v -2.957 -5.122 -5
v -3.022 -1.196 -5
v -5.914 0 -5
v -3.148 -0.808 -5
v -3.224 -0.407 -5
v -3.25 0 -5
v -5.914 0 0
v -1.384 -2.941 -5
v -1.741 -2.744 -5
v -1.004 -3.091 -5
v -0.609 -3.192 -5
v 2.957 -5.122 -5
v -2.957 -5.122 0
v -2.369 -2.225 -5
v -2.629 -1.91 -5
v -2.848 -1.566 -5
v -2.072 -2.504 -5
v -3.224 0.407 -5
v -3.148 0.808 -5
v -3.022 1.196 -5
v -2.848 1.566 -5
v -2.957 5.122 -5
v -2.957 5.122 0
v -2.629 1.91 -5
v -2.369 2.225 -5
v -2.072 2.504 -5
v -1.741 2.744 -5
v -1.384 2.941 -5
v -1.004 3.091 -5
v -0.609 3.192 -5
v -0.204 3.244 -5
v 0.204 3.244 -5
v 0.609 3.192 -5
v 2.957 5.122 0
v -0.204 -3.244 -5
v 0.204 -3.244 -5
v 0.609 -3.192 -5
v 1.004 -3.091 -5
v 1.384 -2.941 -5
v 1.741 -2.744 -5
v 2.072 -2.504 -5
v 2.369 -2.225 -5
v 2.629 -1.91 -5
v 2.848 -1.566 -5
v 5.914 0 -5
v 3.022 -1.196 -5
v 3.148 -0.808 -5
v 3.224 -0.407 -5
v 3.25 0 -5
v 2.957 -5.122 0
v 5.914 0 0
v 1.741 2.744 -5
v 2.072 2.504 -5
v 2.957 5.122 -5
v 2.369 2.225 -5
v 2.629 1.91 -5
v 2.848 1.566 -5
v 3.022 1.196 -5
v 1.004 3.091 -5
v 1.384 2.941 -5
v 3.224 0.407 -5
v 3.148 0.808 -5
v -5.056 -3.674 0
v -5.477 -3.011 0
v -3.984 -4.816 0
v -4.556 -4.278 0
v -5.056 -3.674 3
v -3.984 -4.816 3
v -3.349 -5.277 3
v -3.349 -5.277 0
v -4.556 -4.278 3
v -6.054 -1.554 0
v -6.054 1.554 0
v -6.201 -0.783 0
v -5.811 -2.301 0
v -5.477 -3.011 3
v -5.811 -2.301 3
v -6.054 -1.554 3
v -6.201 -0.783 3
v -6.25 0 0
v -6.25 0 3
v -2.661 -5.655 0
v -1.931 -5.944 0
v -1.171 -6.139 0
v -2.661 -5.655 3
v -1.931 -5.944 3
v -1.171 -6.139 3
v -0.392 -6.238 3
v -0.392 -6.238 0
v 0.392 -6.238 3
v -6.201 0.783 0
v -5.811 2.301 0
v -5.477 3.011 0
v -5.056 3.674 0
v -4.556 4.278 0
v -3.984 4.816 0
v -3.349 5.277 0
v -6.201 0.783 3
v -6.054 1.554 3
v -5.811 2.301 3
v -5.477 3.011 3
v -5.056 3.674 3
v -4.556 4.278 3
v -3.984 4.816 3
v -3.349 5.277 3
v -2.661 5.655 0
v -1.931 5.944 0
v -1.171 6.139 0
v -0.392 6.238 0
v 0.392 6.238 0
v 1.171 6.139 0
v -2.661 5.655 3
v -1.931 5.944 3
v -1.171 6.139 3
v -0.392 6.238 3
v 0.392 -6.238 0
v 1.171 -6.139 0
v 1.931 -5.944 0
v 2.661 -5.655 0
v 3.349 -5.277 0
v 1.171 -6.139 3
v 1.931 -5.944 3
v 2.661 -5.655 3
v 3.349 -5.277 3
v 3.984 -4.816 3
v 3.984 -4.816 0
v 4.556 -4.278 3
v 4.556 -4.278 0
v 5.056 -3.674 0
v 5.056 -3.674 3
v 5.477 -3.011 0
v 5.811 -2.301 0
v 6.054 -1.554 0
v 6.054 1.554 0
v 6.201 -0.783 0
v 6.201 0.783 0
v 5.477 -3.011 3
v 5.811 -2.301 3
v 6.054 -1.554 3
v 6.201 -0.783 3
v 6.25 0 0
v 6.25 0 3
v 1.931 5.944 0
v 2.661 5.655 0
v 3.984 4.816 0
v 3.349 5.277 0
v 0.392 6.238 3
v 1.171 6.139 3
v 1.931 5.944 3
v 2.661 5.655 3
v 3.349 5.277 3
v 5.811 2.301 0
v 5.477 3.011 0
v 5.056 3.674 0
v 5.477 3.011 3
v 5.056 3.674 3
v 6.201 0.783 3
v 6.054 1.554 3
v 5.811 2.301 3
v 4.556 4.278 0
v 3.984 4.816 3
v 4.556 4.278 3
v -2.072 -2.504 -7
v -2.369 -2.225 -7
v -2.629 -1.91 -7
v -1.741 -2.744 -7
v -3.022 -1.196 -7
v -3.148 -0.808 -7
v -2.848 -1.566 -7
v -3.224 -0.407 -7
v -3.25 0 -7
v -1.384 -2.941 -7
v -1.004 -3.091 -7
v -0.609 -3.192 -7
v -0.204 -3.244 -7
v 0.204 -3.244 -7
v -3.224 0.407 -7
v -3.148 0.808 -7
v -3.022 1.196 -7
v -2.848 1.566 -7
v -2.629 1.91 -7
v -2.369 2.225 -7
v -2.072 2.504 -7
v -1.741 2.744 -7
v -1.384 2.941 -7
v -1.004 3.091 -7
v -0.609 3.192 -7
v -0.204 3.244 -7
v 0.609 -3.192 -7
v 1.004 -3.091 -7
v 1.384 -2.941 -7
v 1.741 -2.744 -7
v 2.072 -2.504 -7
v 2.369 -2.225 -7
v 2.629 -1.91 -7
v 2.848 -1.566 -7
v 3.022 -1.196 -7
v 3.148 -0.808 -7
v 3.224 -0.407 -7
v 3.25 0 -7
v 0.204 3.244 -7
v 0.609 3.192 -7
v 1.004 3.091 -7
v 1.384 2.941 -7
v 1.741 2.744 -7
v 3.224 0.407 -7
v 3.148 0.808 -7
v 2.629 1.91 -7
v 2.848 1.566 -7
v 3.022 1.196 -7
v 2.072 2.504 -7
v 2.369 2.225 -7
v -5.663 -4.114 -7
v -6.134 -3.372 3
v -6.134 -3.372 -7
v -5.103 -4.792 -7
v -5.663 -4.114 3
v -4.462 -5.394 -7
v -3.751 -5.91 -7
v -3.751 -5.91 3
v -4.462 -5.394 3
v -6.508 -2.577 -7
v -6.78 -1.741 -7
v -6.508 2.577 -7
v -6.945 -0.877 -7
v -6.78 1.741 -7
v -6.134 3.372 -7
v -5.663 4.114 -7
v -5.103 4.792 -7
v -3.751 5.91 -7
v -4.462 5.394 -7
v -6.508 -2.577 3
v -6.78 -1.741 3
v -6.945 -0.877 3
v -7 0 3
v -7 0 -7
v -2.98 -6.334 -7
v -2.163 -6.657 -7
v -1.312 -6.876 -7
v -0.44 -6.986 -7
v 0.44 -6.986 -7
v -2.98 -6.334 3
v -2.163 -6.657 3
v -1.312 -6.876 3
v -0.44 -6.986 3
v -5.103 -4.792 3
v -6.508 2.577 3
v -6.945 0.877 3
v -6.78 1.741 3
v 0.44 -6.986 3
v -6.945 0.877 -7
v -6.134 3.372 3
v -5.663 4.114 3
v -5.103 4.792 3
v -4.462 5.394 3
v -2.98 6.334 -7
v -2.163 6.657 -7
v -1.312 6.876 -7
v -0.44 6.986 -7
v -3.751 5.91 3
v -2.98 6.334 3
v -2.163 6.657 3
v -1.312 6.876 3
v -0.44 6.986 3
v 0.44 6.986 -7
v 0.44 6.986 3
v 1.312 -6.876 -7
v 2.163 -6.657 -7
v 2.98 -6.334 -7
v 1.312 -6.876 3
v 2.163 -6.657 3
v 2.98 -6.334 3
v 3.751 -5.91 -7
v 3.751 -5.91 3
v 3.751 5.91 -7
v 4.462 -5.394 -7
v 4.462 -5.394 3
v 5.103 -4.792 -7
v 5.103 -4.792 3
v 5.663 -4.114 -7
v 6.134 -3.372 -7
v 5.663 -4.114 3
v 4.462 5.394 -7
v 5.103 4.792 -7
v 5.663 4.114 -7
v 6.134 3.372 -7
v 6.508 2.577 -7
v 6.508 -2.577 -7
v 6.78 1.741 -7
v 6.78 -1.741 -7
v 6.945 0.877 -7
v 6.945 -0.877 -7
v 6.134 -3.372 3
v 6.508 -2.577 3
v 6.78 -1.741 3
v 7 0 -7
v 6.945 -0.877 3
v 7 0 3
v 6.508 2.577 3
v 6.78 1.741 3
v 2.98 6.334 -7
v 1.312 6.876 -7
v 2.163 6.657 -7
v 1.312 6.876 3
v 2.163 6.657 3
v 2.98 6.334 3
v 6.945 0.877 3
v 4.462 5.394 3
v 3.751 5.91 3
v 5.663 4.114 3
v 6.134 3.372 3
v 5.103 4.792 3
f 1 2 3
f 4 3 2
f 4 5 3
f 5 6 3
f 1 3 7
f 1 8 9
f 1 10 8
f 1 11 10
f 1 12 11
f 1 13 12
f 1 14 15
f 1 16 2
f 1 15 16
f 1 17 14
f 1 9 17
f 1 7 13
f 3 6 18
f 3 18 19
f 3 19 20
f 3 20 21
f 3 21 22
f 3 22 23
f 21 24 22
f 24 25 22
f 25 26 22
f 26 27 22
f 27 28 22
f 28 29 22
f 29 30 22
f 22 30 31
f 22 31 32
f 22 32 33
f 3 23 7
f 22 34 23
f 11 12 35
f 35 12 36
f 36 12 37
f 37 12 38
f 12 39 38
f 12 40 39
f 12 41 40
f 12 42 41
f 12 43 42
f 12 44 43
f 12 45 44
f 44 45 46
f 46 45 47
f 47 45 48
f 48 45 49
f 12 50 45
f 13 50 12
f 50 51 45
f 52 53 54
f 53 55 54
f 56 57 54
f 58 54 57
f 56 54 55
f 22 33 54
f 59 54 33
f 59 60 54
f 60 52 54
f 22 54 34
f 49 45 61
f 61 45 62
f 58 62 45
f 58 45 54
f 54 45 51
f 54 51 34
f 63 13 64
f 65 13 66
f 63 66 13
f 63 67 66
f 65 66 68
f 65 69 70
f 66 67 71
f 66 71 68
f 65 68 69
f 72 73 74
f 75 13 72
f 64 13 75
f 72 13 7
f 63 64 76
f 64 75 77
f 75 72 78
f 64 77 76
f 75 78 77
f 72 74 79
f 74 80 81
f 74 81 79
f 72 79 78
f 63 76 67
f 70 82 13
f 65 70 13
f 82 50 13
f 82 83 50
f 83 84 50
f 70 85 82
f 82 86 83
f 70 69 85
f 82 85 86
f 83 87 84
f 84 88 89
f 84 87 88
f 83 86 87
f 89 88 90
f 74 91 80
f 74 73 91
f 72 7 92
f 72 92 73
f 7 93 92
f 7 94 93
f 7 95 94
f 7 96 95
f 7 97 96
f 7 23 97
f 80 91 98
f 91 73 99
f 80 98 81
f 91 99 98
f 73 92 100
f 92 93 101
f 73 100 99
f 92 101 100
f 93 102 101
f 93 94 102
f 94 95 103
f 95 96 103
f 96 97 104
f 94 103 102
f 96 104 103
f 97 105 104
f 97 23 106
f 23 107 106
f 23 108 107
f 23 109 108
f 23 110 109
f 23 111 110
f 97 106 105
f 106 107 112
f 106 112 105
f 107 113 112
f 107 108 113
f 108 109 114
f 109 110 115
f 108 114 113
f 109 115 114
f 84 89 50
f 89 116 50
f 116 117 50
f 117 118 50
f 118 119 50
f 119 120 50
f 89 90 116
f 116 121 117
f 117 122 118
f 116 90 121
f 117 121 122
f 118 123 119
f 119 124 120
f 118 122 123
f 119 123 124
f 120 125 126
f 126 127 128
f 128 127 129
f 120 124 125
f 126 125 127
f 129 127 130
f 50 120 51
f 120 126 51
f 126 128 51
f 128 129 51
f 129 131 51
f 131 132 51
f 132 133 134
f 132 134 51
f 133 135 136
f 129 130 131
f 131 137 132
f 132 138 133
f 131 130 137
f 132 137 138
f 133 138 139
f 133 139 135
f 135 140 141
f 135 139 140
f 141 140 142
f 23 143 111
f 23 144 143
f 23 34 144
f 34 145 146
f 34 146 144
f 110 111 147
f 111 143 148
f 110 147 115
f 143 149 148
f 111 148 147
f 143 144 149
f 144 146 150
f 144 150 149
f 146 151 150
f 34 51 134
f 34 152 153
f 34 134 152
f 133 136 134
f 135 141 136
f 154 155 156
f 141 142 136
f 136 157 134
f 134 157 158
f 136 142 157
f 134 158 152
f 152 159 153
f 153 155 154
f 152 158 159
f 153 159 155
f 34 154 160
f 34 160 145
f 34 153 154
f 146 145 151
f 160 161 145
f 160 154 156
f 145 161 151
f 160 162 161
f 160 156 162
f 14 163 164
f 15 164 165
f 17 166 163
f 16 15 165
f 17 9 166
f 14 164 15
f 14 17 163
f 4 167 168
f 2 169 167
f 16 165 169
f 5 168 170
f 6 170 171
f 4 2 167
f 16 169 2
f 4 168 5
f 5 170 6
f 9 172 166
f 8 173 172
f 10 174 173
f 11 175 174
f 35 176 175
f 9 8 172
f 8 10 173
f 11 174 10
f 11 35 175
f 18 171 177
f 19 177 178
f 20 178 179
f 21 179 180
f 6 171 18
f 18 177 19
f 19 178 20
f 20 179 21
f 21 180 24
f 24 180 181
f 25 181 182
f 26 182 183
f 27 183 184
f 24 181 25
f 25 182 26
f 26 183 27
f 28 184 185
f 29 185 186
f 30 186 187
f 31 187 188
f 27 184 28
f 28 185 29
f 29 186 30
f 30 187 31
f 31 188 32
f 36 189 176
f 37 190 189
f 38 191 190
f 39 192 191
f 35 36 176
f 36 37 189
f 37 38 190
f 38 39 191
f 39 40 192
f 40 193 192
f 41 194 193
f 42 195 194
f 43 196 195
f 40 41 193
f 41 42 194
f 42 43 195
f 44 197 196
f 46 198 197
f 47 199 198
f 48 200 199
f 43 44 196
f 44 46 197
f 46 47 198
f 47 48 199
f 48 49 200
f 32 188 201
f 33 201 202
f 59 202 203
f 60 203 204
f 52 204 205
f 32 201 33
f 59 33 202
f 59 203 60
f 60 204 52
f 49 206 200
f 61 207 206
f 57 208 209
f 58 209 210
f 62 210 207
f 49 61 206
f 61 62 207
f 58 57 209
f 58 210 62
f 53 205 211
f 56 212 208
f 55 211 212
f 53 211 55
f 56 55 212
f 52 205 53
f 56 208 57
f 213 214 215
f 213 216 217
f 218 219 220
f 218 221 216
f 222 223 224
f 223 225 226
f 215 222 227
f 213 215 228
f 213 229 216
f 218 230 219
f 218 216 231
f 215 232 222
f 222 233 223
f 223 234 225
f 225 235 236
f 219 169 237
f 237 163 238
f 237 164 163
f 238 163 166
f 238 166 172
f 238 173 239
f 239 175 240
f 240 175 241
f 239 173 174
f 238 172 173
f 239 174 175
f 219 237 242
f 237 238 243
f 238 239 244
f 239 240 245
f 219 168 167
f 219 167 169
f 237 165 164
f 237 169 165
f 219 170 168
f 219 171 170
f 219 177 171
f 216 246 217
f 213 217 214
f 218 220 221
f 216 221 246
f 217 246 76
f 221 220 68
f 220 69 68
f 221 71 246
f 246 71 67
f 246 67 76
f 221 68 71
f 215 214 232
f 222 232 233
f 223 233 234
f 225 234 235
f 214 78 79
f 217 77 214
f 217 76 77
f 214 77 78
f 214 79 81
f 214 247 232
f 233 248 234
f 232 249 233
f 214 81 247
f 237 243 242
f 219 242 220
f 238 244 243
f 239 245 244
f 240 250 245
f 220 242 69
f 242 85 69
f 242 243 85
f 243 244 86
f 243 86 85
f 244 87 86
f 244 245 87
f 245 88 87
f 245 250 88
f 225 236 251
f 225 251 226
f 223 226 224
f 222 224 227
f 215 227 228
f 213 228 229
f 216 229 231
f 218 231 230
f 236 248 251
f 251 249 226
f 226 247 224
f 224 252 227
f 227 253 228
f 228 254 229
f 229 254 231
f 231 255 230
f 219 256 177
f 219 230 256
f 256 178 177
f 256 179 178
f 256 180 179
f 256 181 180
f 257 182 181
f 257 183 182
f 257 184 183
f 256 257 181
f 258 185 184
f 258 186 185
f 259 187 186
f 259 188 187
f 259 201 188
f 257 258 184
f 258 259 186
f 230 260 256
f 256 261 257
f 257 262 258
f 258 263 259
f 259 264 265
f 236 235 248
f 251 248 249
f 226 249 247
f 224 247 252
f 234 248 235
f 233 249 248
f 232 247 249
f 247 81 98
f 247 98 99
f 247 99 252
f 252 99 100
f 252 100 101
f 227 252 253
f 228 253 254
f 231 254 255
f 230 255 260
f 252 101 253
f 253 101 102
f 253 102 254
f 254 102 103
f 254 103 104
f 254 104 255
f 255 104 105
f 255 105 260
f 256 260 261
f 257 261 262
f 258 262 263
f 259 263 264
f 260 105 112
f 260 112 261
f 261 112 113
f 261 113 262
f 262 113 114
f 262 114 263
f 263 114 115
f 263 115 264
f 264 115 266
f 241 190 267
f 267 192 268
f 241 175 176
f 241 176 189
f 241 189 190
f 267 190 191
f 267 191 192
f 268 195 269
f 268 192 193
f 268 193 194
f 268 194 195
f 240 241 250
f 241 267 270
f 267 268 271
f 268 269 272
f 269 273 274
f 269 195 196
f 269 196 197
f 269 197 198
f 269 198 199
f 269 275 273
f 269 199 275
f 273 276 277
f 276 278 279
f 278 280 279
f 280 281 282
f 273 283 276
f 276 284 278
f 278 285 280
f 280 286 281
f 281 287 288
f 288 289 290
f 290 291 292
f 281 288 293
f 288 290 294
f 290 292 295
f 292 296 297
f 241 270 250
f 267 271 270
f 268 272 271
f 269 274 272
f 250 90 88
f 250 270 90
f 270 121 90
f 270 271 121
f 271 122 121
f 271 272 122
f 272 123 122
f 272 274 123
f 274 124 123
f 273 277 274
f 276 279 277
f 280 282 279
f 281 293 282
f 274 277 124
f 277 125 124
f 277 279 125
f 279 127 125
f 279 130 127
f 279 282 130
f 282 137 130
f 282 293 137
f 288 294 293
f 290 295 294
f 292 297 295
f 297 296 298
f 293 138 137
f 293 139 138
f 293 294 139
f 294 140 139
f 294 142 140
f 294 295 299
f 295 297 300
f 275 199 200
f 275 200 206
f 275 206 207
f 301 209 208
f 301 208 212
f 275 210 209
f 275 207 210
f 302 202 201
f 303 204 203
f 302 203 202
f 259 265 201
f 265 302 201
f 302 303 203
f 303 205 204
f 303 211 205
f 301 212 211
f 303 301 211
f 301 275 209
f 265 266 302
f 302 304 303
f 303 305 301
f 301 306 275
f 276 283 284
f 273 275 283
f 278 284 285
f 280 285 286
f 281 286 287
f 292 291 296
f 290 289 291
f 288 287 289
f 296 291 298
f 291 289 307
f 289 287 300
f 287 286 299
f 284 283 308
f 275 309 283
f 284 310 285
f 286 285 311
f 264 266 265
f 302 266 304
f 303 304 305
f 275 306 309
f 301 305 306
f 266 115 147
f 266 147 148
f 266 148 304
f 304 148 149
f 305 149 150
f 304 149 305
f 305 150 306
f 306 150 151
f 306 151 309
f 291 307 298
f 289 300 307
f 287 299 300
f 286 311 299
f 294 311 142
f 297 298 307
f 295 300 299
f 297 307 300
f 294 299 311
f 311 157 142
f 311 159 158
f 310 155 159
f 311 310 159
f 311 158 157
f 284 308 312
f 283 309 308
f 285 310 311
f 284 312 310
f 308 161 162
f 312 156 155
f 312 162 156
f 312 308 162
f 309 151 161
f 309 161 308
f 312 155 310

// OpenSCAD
$fn = 50;

difference() {
	union() {
		translate(v = [0, 0, -7.0]) {
			cylinder(h = 10.0, r = 7.0);
		}
	}
	union() {
		translate(v = [0, 0, 0]) {
			rotate(a = [0, 0, 0]) {
				difference() {
					union() {
						translate(v = [0, 0, -5]) {
							linear_extrude(height = 5) {
								polygon(points = [[5.914249999999999, 0.0], [2.957125, 5.1218907443321156], [-2.9571249999999982, 5.1218907443321156], [-5.914249999999999, 7.242867331857232e-16], [-2.9571250000000022, -5.121890744332115], [2.9571249999999956, -5.121890744332118]]);
							}
						}
					}
					union();
				}
			}
		}
		#cylinder(h = 3, r = 6.25);
		#translate(v = [0, 0, -100.0]) {
			cylinder(h = 200, r = 3.25);
		}
	}
}
